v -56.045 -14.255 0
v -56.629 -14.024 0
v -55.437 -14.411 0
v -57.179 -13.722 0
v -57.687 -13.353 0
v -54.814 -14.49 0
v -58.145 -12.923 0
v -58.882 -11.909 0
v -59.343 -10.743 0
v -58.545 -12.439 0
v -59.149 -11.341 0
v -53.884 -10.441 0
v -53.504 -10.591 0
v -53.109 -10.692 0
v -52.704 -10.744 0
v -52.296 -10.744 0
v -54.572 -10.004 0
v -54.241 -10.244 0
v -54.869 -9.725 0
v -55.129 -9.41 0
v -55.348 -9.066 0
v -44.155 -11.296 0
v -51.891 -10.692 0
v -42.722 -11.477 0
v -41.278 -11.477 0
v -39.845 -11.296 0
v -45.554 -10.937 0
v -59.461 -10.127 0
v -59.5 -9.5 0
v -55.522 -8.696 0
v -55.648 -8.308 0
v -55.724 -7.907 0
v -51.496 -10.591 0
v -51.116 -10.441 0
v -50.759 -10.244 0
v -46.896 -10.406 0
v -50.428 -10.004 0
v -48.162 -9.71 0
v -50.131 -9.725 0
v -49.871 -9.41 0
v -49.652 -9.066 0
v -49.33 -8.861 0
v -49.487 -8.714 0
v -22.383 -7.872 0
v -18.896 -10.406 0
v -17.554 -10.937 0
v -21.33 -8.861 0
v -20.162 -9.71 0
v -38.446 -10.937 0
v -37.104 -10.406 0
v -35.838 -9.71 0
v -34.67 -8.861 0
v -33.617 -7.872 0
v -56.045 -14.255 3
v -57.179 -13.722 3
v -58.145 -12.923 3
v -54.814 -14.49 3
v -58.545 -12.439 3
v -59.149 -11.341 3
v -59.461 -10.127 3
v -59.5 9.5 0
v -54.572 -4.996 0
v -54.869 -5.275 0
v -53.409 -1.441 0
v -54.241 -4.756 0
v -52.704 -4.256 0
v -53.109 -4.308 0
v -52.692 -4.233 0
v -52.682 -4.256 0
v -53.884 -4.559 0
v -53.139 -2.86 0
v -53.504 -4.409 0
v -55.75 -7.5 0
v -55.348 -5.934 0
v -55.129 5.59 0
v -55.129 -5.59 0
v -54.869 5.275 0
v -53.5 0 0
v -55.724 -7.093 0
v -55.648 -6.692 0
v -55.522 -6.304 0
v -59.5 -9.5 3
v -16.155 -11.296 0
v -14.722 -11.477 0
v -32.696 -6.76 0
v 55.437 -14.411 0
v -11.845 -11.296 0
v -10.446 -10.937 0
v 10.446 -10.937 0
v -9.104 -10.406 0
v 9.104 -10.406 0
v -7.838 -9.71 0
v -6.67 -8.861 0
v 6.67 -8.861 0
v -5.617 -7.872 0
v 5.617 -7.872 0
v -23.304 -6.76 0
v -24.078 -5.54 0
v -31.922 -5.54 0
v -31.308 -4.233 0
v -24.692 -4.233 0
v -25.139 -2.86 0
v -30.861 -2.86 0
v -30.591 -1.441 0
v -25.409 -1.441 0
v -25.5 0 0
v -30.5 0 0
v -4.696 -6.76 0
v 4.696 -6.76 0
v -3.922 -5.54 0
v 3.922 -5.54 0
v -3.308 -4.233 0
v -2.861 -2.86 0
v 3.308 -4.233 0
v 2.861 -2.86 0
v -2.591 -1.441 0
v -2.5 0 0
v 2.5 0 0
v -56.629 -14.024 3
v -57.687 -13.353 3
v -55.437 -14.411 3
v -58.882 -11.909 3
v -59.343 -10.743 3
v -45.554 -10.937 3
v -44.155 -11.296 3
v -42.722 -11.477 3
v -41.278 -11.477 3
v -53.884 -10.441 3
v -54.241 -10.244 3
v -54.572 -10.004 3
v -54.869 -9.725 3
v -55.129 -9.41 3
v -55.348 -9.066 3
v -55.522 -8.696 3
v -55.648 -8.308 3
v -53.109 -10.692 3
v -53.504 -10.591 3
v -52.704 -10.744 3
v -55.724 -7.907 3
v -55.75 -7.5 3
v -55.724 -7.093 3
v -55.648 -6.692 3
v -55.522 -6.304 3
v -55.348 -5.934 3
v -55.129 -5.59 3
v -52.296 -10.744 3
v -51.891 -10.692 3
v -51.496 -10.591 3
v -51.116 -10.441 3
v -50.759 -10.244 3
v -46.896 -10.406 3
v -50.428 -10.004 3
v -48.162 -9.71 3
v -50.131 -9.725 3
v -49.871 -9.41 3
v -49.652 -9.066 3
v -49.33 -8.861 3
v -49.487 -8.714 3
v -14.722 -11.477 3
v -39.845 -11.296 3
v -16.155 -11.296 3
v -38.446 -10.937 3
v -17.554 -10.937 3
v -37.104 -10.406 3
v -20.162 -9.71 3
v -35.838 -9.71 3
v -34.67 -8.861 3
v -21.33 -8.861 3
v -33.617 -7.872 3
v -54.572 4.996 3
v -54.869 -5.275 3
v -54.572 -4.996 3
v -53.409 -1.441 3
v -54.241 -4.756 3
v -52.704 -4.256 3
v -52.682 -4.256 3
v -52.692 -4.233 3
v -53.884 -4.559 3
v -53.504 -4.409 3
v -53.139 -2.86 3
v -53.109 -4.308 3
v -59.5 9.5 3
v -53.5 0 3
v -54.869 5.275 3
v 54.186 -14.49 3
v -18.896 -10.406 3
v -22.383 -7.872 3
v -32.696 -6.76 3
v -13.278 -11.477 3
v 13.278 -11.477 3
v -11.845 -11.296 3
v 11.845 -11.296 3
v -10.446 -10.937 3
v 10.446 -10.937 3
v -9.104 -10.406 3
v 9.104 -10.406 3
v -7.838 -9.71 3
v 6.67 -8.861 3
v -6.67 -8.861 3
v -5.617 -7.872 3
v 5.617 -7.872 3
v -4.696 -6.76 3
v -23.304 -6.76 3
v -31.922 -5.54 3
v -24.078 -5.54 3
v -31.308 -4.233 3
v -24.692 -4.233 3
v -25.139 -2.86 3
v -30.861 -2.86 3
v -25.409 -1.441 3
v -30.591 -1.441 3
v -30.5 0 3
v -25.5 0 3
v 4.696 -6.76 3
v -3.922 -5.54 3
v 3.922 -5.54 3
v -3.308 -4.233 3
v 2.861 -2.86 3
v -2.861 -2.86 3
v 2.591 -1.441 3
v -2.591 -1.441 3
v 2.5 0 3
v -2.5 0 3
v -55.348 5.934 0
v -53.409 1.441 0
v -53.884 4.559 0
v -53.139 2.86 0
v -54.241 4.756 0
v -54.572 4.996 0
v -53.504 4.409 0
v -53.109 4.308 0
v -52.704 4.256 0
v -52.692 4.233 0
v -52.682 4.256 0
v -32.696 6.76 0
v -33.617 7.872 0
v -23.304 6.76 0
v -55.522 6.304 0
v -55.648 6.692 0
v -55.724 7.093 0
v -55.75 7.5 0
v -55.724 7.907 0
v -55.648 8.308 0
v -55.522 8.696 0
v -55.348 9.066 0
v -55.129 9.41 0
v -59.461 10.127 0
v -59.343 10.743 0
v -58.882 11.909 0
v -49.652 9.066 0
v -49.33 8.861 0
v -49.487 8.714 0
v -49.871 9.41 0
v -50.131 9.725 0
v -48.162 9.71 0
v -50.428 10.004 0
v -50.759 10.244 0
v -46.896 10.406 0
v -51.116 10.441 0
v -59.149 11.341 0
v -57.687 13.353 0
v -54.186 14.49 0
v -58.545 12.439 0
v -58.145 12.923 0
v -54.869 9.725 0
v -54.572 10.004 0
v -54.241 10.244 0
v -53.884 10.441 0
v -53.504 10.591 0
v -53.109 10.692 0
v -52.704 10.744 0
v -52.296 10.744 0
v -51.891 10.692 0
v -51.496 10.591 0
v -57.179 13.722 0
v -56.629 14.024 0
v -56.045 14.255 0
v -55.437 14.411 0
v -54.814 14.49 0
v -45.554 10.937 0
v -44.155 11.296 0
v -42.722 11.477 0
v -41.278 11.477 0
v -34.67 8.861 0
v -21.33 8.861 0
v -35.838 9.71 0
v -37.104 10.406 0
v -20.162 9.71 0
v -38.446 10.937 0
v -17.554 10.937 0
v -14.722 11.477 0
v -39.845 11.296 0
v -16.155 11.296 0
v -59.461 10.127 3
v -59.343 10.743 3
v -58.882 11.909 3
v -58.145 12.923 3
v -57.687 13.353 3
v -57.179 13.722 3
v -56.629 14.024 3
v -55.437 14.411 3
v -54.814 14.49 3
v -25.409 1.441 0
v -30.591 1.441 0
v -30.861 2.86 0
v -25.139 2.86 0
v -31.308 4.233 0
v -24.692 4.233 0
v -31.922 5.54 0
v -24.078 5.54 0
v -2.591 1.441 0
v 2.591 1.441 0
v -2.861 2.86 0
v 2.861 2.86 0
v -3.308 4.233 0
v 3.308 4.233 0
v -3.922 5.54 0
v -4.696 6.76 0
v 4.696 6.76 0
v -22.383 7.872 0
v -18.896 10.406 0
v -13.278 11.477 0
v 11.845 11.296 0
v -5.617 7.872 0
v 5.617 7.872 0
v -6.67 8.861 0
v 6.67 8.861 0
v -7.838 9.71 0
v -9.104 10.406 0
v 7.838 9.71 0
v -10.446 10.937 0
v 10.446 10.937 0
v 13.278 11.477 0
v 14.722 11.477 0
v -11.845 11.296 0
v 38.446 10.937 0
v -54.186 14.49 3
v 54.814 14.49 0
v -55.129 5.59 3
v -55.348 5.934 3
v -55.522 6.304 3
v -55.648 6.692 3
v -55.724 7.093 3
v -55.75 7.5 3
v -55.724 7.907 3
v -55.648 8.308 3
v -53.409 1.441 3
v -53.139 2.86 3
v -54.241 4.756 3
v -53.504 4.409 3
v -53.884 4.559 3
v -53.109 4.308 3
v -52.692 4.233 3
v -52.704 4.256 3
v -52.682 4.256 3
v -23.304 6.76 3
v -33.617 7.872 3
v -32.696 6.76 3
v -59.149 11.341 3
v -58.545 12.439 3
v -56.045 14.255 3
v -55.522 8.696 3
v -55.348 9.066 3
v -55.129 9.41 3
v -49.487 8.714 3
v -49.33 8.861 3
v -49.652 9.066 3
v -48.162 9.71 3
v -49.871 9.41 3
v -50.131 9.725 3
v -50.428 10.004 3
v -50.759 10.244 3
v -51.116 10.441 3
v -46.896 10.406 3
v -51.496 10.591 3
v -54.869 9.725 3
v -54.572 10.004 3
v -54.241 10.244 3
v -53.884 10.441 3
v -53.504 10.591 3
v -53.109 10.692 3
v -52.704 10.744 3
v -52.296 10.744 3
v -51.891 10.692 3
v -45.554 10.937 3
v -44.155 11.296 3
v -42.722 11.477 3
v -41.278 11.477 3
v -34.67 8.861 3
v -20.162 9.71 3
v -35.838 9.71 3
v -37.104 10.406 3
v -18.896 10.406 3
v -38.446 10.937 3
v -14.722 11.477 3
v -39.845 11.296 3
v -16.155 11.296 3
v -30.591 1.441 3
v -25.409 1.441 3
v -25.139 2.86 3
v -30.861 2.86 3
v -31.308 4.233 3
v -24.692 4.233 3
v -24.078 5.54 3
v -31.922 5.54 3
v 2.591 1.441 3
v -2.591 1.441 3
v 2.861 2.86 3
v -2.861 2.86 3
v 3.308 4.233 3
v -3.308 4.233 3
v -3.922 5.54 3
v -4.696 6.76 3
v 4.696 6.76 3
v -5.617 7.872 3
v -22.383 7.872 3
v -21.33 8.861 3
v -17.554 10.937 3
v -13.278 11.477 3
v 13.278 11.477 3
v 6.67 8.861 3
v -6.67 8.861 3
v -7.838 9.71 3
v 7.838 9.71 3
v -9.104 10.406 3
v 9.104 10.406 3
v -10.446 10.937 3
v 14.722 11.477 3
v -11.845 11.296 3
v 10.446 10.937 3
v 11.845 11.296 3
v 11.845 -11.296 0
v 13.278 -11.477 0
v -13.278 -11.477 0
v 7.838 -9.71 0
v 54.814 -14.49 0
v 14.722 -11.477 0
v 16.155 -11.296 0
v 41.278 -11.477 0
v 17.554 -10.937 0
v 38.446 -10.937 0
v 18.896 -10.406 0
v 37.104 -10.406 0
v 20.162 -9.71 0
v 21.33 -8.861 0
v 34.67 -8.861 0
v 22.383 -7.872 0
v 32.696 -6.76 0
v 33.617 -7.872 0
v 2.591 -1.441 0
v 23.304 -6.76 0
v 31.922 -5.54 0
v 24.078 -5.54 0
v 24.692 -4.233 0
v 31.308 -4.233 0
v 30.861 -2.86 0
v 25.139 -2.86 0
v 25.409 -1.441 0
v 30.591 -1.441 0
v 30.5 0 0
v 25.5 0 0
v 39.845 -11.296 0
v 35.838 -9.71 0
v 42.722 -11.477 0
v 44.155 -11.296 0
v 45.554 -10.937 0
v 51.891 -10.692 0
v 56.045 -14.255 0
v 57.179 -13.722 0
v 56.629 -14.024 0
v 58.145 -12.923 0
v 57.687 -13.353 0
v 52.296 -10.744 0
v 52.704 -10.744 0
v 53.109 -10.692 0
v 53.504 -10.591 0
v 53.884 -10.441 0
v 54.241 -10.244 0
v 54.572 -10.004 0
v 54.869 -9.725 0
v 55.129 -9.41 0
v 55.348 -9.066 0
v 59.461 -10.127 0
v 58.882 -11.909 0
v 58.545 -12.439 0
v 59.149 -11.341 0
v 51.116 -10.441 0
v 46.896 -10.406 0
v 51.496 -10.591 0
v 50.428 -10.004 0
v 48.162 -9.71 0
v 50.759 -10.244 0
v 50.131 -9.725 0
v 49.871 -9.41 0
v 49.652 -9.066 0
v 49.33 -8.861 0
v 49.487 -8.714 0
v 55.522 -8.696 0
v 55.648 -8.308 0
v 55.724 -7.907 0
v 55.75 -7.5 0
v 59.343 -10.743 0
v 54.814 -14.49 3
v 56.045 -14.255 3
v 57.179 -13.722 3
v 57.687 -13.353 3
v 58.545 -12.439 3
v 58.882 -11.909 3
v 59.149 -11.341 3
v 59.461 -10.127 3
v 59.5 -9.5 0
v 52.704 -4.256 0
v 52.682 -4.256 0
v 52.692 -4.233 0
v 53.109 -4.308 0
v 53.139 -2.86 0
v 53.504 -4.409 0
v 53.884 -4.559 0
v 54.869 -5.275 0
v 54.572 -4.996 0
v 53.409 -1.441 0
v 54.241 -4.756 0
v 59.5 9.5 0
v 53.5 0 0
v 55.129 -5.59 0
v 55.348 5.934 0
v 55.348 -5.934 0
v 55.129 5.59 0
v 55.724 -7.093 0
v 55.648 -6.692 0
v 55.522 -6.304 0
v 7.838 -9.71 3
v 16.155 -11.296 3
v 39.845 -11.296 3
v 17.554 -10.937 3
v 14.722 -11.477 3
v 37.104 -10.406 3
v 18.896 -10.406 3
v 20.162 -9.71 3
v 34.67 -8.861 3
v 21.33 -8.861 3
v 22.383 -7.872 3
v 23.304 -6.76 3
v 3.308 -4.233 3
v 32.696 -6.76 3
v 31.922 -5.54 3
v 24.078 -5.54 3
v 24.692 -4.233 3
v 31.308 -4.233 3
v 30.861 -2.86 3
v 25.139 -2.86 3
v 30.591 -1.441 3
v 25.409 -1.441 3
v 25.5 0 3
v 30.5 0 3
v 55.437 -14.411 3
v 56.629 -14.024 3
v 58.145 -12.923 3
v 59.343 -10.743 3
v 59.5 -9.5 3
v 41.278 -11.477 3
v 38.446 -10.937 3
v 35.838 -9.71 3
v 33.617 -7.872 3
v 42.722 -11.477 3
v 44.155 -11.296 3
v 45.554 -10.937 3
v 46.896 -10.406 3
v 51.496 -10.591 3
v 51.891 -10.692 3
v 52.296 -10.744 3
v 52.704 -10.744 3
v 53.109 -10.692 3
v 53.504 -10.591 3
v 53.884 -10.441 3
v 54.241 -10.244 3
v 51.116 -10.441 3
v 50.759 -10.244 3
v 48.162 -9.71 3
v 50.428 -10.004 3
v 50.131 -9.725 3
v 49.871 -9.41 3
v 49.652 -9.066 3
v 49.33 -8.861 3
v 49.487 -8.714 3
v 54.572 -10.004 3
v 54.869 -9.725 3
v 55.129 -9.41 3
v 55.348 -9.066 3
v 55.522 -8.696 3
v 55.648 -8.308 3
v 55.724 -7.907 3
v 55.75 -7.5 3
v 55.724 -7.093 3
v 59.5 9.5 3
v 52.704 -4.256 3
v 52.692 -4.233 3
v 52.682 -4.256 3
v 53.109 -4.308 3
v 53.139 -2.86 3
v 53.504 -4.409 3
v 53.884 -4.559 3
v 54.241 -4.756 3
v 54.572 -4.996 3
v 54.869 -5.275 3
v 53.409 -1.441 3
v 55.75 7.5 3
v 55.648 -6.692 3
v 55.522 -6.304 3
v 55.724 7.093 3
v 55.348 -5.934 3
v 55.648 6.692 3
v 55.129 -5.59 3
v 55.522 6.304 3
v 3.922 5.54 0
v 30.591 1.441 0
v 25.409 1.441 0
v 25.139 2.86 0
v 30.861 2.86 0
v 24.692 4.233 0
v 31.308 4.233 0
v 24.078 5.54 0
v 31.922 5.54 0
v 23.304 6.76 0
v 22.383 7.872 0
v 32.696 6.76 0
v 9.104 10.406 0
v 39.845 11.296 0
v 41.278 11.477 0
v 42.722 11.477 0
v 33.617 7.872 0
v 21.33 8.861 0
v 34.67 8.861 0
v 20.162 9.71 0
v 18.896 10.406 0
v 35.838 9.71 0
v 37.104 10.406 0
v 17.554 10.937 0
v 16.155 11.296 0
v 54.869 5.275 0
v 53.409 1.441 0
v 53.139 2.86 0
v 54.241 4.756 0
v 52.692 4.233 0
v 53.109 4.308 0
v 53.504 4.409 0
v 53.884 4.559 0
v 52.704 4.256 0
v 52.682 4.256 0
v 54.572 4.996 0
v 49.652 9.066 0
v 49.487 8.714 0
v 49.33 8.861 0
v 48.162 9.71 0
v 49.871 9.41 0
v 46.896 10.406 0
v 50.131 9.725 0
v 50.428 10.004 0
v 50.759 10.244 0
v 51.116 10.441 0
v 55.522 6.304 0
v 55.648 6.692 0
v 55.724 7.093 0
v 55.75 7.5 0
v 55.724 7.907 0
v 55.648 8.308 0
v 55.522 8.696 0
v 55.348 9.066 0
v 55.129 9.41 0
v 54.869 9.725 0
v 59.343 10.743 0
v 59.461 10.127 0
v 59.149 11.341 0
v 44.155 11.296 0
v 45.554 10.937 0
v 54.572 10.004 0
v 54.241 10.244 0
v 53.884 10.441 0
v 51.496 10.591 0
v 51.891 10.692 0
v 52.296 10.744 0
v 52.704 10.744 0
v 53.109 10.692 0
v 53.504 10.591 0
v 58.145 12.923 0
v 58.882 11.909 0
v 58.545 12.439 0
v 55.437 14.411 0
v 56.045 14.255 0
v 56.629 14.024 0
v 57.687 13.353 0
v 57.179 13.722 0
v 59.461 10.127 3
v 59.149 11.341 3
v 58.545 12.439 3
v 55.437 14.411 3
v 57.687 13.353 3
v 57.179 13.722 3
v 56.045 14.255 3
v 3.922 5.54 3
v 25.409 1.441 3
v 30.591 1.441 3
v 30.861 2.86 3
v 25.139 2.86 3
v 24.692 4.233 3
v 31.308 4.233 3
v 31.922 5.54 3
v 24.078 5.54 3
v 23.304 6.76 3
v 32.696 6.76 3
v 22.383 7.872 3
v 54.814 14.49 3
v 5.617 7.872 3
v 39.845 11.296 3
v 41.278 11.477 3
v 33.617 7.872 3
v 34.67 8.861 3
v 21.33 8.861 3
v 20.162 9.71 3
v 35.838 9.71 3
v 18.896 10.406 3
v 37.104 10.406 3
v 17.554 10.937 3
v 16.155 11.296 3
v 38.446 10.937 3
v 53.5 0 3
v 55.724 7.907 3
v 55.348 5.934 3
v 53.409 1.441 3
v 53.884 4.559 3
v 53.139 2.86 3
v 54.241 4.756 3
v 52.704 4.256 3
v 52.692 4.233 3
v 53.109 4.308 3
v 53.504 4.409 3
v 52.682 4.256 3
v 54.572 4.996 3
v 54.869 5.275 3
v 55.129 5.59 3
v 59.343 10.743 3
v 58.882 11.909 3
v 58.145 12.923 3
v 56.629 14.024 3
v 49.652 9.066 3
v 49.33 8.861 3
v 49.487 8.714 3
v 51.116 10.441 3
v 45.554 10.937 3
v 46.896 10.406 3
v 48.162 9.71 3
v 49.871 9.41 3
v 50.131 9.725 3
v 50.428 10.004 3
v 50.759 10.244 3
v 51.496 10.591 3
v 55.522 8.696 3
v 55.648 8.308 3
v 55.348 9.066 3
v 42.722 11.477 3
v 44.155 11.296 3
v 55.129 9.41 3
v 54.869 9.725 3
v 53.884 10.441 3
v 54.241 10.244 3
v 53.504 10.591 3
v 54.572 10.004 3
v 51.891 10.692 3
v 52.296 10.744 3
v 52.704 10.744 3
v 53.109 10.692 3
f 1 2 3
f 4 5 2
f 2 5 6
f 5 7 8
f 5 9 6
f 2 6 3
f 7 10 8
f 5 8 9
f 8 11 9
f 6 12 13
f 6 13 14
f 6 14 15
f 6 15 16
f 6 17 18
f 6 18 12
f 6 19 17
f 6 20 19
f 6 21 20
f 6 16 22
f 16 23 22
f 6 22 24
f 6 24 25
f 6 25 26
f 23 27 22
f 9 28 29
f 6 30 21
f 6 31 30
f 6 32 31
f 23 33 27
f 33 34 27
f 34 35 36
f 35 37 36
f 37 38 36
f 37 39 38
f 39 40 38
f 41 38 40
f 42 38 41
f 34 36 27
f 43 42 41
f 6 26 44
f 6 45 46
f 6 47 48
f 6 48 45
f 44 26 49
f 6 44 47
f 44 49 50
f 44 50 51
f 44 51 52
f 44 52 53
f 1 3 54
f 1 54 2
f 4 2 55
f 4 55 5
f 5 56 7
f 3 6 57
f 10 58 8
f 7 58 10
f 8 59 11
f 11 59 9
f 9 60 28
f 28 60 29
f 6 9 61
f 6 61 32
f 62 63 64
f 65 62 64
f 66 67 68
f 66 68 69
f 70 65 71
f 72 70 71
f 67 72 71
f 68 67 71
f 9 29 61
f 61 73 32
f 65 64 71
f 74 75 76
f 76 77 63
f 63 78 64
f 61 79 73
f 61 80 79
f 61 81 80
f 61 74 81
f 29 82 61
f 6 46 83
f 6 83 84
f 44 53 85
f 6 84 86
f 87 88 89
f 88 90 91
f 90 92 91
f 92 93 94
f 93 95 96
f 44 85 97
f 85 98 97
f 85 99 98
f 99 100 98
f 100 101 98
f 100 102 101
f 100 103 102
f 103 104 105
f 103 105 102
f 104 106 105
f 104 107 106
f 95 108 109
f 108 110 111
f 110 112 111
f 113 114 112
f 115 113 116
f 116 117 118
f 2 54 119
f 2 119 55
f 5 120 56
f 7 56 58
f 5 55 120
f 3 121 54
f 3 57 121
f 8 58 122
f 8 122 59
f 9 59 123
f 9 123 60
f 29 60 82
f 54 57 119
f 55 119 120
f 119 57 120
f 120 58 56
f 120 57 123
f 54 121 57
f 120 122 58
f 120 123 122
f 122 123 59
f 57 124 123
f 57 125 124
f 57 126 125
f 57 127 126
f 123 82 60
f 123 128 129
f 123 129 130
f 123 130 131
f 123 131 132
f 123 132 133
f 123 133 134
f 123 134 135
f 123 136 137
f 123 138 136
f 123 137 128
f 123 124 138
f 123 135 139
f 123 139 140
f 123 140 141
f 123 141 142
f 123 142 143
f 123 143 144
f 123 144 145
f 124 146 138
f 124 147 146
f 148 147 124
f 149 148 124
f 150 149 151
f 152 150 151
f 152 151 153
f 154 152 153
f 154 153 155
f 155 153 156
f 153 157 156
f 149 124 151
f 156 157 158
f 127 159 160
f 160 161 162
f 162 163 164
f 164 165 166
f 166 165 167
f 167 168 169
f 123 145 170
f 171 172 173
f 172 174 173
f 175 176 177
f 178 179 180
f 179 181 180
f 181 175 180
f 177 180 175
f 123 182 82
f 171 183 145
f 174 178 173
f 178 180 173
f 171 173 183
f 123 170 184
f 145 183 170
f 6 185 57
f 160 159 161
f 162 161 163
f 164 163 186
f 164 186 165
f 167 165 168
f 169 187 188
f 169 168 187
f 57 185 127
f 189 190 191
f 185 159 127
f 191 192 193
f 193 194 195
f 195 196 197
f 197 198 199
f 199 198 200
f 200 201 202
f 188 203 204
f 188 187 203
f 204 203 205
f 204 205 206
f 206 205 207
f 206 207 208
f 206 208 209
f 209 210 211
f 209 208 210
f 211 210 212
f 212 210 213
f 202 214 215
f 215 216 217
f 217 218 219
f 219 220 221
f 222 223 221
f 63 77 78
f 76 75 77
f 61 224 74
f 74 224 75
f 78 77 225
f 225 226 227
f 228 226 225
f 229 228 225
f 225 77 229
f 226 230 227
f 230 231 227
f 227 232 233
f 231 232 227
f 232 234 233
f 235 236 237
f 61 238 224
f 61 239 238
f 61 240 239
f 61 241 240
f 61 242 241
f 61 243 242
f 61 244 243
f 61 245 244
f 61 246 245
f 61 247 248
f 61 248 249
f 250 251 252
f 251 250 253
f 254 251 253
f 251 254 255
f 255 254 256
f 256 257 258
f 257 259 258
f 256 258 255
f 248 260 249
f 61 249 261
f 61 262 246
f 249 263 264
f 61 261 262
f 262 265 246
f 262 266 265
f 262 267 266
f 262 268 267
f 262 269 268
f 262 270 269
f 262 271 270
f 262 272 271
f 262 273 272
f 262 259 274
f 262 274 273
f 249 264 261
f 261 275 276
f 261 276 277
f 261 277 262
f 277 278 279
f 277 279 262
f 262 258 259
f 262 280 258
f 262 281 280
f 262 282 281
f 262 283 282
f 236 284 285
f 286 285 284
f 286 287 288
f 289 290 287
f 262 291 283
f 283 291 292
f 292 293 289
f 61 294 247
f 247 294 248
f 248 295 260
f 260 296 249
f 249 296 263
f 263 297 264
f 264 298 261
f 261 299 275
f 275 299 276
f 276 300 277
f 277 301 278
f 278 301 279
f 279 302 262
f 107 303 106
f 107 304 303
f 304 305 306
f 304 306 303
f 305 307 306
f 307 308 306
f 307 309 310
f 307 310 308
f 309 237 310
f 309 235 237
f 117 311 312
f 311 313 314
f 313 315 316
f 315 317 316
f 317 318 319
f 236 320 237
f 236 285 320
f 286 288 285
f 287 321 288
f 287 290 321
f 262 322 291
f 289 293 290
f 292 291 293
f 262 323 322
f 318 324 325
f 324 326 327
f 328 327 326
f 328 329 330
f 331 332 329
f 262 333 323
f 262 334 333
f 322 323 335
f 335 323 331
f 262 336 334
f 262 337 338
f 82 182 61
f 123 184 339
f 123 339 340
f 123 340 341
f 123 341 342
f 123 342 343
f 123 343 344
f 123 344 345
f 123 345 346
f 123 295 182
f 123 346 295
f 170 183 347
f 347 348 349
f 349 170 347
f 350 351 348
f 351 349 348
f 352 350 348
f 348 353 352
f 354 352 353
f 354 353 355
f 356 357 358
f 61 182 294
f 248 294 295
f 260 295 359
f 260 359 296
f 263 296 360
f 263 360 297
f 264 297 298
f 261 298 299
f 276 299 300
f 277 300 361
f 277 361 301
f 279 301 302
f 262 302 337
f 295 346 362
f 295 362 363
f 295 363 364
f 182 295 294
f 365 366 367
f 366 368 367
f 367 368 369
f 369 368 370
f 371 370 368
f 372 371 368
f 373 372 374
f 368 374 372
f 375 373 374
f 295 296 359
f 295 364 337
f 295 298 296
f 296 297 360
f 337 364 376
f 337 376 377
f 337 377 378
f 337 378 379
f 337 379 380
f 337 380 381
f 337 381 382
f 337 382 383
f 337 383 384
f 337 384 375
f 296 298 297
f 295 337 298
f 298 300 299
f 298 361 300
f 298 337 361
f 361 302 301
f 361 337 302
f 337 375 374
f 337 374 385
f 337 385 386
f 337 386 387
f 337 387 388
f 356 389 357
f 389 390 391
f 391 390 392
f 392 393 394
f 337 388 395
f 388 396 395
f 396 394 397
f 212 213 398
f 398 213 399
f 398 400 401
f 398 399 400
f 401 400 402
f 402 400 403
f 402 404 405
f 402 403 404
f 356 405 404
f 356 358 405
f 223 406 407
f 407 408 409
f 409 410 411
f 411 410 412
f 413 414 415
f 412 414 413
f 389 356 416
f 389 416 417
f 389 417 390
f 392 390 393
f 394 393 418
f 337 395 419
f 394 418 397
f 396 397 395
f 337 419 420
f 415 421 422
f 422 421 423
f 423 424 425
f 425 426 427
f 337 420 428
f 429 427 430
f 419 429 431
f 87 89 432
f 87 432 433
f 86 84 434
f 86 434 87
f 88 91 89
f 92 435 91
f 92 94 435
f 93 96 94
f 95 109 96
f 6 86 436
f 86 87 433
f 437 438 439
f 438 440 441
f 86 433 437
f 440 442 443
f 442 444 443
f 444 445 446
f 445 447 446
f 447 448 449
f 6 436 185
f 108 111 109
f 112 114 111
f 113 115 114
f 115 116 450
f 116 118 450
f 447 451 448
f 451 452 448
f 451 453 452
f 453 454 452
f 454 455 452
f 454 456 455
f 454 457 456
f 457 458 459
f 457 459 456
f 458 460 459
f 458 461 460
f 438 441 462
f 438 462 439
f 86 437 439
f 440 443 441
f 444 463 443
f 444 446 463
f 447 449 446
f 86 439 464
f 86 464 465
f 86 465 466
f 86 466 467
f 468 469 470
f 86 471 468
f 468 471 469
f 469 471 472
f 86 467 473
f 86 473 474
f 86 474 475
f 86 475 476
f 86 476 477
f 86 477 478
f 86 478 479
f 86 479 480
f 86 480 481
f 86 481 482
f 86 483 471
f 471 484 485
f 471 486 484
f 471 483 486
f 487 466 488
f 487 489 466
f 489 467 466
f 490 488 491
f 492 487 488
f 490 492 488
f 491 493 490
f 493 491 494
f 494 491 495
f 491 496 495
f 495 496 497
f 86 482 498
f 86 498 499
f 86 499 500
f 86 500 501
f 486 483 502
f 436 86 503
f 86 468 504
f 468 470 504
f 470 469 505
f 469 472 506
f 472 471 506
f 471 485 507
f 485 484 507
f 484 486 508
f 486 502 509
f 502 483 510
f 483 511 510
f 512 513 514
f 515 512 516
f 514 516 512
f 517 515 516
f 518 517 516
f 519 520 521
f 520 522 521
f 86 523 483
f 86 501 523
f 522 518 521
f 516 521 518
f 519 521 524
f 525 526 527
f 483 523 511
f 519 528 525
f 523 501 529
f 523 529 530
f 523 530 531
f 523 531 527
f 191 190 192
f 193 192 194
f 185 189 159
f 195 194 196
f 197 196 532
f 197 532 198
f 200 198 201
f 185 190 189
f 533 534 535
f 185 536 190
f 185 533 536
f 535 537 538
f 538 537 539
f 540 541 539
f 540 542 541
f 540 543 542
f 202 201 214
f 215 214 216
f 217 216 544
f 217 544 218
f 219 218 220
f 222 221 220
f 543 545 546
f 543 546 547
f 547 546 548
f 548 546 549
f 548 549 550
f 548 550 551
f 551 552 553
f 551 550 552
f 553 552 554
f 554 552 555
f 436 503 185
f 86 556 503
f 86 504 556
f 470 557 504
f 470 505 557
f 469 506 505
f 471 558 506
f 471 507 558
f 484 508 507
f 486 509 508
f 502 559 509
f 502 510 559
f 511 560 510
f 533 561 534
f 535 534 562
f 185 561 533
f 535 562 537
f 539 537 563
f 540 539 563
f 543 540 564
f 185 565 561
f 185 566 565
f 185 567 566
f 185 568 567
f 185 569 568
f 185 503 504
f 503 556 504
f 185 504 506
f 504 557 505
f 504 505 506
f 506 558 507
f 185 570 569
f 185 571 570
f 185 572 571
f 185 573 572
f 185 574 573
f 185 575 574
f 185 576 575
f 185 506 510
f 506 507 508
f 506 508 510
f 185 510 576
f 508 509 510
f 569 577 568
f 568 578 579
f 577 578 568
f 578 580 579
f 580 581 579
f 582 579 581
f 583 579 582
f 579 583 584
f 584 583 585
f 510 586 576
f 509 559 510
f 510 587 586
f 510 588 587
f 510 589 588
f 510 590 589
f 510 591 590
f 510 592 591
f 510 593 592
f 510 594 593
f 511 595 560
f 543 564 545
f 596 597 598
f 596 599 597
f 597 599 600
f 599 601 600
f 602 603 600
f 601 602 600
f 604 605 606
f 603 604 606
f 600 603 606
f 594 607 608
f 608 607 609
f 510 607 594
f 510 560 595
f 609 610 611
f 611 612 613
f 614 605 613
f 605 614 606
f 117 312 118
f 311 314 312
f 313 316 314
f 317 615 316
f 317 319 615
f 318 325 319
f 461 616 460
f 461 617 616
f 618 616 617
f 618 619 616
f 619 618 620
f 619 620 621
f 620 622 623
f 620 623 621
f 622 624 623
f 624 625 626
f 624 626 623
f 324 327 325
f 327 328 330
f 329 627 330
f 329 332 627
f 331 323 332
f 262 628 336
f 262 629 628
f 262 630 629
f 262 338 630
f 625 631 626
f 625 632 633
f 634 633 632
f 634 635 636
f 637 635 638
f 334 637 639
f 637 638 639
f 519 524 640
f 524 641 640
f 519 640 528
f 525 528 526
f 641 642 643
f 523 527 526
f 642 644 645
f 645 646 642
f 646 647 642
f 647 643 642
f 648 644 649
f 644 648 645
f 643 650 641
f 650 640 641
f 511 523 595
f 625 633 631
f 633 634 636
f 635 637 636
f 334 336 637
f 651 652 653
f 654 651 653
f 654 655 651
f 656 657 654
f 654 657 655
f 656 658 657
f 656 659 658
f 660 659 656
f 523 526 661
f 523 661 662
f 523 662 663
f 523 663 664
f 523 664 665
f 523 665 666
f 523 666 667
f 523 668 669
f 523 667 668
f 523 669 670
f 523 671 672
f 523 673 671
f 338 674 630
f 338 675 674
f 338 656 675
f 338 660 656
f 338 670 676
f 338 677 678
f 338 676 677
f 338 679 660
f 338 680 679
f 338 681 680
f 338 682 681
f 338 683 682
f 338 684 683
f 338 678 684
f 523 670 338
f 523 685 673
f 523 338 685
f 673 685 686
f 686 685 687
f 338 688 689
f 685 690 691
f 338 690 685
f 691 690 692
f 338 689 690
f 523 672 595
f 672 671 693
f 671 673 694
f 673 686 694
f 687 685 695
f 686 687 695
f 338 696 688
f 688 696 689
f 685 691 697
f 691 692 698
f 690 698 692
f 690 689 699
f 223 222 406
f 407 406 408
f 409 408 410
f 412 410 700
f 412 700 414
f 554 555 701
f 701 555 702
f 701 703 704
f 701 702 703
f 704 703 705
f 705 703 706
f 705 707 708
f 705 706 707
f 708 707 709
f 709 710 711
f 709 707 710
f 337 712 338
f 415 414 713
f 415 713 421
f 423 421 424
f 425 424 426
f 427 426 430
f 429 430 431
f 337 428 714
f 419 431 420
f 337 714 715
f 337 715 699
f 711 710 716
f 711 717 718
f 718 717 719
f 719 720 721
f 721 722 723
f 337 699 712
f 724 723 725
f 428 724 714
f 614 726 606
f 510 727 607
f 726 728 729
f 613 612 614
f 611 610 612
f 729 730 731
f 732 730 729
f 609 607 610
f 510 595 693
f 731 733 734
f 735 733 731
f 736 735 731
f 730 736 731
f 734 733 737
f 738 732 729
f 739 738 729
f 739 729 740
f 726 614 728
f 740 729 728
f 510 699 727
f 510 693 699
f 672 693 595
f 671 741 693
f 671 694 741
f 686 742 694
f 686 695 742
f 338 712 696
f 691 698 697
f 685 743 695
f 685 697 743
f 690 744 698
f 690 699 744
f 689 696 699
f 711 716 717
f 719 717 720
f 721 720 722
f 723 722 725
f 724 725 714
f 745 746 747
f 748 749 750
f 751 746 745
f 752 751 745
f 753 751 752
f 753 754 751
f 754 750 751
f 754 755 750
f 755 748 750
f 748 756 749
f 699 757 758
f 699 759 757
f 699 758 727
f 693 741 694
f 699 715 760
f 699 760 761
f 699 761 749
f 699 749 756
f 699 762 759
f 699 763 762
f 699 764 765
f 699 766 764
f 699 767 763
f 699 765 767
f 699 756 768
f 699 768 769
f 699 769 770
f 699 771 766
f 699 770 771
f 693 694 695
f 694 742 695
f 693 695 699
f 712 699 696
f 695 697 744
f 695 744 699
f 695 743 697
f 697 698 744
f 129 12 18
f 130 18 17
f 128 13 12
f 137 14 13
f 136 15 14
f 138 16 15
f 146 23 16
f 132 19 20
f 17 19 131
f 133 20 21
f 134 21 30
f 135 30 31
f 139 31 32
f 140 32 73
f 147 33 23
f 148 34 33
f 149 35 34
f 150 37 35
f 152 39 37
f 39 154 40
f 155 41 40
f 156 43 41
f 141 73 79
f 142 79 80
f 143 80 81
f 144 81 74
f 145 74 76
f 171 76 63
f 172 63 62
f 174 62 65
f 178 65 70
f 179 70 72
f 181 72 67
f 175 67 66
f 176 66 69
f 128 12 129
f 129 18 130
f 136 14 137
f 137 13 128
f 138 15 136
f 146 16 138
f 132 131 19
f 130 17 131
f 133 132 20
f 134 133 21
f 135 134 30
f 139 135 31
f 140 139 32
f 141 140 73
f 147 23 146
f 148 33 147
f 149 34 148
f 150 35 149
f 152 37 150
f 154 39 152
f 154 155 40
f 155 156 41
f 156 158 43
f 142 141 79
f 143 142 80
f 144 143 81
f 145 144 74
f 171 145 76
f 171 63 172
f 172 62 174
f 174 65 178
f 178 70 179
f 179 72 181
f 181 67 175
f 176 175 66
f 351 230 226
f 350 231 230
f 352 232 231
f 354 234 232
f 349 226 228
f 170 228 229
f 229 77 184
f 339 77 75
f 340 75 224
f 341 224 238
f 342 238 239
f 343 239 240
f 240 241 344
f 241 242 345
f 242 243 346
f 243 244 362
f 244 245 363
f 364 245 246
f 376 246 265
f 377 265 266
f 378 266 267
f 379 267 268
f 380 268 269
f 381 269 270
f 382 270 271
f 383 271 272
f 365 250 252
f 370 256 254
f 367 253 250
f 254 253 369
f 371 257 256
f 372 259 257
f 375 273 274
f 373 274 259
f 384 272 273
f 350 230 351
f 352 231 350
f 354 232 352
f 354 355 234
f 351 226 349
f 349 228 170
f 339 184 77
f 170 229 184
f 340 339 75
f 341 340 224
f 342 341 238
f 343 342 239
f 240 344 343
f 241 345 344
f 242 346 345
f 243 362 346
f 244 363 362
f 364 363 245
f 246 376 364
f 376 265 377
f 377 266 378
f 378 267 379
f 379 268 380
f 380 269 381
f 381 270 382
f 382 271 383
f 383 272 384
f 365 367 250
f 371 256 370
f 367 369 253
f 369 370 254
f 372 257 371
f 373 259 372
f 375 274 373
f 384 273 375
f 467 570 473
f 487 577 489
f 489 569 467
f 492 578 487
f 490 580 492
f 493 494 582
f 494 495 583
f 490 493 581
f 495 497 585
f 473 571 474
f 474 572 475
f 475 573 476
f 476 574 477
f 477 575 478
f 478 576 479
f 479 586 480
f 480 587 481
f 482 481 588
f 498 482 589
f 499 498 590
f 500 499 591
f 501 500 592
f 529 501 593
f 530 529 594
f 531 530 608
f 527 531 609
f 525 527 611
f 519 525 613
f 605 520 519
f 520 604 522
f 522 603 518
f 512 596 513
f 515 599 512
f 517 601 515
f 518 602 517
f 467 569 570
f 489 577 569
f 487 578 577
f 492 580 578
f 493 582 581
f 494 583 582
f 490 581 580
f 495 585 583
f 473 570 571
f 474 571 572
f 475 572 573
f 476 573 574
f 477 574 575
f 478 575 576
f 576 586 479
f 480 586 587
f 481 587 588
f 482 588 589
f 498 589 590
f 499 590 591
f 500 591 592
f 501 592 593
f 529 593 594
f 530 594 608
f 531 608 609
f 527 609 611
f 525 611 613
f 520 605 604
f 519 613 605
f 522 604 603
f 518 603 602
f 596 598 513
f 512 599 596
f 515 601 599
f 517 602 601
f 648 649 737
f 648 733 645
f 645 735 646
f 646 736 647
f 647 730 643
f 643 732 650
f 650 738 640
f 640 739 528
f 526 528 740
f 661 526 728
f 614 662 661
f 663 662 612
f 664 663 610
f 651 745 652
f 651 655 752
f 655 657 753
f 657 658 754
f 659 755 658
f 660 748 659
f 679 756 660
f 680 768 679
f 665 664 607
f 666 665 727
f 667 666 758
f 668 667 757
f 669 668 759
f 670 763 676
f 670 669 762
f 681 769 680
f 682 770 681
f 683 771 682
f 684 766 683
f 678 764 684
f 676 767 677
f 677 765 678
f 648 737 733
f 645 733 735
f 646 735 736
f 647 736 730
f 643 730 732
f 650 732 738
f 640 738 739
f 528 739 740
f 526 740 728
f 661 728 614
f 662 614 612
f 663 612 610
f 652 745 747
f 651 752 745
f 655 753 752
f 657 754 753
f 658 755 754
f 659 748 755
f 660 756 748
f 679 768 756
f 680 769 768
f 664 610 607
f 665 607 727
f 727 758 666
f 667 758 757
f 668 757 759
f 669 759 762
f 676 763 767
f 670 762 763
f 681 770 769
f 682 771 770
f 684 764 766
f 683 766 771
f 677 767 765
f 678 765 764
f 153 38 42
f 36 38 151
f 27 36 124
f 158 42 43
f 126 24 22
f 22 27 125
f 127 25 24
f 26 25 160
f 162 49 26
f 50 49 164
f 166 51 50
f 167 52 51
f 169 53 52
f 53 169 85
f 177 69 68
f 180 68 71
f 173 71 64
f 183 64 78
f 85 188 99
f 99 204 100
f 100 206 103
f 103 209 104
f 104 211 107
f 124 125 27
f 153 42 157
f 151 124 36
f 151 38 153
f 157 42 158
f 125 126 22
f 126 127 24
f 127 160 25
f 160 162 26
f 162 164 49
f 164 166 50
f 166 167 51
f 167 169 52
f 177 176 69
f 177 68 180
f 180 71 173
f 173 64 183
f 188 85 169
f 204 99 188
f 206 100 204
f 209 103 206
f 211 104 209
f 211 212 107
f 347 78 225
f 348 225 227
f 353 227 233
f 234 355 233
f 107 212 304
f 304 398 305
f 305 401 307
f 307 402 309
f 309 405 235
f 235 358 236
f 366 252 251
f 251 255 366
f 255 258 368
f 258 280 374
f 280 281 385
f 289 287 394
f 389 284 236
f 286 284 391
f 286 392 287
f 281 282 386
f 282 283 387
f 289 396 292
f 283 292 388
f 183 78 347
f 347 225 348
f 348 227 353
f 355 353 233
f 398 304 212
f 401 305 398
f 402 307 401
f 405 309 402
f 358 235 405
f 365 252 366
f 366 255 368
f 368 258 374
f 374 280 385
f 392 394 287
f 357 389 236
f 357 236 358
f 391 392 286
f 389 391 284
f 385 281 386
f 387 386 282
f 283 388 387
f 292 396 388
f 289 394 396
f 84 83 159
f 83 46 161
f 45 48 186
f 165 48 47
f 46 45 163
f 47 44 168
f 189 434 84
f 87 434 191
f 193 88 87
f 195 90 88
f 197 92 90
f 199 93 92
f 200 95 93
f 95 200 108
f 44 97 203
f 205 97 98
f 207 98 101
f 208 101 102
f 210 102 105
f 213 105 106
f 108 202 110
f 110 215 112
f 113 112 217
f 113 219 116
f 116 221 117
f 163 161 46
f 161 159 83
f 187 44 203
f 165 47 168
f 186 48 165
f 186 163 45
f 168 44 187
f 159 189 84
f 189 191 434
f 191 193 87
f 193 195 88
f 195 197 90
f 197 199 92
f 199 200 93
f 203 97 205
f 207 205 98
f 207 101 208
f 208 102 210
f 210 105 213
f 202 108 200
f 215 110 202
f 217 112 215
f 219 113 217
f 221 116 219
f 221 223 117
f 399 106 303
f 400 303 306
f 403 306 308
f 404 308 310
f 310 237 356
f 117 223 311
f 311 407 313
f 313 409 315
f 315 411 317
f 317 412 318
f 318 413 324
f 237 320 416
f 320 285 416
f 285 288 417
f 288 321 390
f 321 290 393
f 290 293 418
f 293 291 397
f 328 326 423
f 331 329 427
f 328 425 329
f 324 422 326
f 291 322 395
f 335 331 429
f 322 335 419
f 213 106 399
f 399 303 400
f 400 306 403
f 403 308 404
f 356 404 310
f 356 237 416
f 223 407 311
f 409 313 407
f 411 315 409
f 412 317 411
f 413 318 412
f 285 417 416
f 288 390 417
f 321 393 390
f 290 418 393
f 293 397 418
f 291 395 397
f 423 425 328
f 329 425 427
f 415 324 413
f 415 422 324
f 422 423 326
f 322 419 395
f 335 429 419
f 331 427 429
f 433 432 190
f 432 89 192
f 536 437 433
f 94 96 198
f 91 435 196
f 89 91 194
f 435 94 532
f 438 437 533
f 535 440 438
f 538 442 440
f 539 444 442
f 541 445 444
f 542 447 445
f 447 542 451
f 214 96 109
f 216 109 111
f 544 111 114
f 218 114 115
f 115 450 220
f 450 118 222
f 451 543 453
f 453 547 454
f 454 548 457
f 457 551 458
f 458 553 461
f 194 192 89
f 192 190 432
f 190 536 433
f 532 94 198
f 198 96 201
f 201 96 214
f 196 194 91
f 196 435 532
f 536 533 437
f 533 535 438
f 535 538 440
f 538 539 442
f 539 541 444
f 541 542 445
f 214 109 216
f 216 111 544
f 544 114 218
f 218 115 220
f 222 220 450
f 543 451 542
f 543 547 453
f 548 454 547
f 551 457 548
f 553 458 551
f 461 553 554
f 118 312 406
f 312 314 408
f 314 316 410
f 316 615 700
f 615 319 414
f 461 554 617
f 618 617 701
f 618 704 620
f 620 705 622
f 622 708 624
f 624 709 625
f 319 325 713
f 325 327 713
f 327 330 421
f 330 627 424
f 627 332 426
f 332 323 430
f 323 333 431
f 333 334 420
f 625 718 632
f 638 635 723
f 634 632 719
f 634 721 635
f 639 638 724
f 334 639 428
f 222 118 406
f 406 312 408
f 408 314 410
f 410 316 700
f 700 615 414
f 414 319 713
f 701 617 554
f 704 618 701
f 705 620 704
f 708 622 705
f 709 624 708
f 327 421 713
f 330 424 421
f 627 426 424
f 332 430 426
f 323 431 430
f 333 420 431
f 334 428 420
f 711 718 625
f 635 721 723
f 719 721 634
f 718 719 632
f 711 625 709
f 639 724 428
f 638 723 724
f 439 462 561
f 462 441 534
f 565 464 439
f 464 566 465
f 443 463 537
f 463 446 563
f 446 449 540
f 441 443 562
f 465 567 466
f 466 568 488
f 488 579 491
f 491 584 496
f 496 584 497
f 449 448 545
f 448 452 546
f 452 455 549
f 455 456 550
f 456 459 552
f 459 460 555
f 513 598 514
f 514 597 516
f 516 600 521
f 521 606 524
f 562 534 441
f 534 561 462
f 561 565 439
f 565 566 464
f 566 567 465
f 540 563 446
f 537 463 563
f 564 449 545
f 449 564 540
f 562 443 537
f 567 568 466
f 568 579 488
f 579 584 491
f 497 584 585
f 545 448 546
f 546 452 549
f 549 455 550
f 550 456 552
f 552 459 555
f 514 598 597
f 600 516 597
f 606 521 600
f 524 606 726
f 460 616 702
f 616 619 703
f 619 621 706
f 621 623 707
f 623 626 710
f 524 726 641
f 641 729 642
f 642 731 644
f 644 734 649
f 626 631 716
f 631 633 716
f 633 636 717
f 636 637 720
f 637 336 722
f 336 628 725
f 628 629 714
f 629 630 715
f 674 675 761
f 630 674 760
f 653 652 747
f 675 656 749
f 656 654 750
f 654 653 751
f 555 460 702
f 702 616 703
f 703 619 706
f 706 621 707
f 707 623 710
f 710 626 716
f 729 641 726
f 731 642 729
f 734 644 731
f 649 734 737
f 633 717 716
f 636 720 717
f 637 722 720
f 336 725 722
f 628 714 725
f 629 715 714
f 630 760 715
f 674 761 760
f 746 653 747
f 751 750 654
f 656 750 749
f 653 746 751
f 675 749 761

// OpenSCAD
$fn = 50;

difference() {
	union() {
		hull() {
			translate(v = [-54.5, 9.5, 0]) {
				cylinder(h = 3, r = 5);
			}
			translate(v = [54.5, 9.5, 0]) {
				cylinder(h = 3, r = 5);
			}
			translate(v = [-54.5, -9.5, 0]) {
				cylinder(h = 3, r = 5);
			}
			translate(v = [54.5, -9.5, 0]) {
				cylinder(h = 3, r = 5);
			}
		}
	}
	union() {
		translate(v = [-52.5, -7.5, -100.0]) {
			cylinder(h = 200, r = 3.25);
		}
		translate(v = [-52.5, 7.5, -100.0]) {
			cylinder(h = 200, r = 3.25);
		}
		translate(v = [52.5, -7.5, -100.0]) {
			cylinder(h = 200, r = 3.25);
		}
		translate(v = [52.5, 7.5, -100.0]) {
			cylinder(h = 200, r = 3.25);
		}
		translate(v = [-52.5, -7.5, -100.0]) {
			cylinder(h = 200, r = 1.8);
		}
		translate(v = [-52.5, 7.5, -100.0]) {
			cylinder(h = 200, r = 1.8);
		}
		translate(v = [52.5, -7.5, -100.0]) {
			cylinder(h = 200, r = 1.8);
		}
		translate(v = [52.5, 7.5, -100.0]) {
			cylinder(h = 200, r = 1.8);
		}
		translate(v = [-42.0, 0, 0.0]) {
			cylinder(h = 3, r = 11.5);
		}
		translate(v = [-14.0, 0, 0.0]) {
			cylinder(h = 3, r = 11.5);
		}
		translate(v = [14.0, 0, 0.0]) {
			cylinder(h = 3, r = 11.5);
		}
		translate(v = [42.0, 0, 0.0]) {
			cylinder(h = 3, r = 11.5);
		}
	}
}
